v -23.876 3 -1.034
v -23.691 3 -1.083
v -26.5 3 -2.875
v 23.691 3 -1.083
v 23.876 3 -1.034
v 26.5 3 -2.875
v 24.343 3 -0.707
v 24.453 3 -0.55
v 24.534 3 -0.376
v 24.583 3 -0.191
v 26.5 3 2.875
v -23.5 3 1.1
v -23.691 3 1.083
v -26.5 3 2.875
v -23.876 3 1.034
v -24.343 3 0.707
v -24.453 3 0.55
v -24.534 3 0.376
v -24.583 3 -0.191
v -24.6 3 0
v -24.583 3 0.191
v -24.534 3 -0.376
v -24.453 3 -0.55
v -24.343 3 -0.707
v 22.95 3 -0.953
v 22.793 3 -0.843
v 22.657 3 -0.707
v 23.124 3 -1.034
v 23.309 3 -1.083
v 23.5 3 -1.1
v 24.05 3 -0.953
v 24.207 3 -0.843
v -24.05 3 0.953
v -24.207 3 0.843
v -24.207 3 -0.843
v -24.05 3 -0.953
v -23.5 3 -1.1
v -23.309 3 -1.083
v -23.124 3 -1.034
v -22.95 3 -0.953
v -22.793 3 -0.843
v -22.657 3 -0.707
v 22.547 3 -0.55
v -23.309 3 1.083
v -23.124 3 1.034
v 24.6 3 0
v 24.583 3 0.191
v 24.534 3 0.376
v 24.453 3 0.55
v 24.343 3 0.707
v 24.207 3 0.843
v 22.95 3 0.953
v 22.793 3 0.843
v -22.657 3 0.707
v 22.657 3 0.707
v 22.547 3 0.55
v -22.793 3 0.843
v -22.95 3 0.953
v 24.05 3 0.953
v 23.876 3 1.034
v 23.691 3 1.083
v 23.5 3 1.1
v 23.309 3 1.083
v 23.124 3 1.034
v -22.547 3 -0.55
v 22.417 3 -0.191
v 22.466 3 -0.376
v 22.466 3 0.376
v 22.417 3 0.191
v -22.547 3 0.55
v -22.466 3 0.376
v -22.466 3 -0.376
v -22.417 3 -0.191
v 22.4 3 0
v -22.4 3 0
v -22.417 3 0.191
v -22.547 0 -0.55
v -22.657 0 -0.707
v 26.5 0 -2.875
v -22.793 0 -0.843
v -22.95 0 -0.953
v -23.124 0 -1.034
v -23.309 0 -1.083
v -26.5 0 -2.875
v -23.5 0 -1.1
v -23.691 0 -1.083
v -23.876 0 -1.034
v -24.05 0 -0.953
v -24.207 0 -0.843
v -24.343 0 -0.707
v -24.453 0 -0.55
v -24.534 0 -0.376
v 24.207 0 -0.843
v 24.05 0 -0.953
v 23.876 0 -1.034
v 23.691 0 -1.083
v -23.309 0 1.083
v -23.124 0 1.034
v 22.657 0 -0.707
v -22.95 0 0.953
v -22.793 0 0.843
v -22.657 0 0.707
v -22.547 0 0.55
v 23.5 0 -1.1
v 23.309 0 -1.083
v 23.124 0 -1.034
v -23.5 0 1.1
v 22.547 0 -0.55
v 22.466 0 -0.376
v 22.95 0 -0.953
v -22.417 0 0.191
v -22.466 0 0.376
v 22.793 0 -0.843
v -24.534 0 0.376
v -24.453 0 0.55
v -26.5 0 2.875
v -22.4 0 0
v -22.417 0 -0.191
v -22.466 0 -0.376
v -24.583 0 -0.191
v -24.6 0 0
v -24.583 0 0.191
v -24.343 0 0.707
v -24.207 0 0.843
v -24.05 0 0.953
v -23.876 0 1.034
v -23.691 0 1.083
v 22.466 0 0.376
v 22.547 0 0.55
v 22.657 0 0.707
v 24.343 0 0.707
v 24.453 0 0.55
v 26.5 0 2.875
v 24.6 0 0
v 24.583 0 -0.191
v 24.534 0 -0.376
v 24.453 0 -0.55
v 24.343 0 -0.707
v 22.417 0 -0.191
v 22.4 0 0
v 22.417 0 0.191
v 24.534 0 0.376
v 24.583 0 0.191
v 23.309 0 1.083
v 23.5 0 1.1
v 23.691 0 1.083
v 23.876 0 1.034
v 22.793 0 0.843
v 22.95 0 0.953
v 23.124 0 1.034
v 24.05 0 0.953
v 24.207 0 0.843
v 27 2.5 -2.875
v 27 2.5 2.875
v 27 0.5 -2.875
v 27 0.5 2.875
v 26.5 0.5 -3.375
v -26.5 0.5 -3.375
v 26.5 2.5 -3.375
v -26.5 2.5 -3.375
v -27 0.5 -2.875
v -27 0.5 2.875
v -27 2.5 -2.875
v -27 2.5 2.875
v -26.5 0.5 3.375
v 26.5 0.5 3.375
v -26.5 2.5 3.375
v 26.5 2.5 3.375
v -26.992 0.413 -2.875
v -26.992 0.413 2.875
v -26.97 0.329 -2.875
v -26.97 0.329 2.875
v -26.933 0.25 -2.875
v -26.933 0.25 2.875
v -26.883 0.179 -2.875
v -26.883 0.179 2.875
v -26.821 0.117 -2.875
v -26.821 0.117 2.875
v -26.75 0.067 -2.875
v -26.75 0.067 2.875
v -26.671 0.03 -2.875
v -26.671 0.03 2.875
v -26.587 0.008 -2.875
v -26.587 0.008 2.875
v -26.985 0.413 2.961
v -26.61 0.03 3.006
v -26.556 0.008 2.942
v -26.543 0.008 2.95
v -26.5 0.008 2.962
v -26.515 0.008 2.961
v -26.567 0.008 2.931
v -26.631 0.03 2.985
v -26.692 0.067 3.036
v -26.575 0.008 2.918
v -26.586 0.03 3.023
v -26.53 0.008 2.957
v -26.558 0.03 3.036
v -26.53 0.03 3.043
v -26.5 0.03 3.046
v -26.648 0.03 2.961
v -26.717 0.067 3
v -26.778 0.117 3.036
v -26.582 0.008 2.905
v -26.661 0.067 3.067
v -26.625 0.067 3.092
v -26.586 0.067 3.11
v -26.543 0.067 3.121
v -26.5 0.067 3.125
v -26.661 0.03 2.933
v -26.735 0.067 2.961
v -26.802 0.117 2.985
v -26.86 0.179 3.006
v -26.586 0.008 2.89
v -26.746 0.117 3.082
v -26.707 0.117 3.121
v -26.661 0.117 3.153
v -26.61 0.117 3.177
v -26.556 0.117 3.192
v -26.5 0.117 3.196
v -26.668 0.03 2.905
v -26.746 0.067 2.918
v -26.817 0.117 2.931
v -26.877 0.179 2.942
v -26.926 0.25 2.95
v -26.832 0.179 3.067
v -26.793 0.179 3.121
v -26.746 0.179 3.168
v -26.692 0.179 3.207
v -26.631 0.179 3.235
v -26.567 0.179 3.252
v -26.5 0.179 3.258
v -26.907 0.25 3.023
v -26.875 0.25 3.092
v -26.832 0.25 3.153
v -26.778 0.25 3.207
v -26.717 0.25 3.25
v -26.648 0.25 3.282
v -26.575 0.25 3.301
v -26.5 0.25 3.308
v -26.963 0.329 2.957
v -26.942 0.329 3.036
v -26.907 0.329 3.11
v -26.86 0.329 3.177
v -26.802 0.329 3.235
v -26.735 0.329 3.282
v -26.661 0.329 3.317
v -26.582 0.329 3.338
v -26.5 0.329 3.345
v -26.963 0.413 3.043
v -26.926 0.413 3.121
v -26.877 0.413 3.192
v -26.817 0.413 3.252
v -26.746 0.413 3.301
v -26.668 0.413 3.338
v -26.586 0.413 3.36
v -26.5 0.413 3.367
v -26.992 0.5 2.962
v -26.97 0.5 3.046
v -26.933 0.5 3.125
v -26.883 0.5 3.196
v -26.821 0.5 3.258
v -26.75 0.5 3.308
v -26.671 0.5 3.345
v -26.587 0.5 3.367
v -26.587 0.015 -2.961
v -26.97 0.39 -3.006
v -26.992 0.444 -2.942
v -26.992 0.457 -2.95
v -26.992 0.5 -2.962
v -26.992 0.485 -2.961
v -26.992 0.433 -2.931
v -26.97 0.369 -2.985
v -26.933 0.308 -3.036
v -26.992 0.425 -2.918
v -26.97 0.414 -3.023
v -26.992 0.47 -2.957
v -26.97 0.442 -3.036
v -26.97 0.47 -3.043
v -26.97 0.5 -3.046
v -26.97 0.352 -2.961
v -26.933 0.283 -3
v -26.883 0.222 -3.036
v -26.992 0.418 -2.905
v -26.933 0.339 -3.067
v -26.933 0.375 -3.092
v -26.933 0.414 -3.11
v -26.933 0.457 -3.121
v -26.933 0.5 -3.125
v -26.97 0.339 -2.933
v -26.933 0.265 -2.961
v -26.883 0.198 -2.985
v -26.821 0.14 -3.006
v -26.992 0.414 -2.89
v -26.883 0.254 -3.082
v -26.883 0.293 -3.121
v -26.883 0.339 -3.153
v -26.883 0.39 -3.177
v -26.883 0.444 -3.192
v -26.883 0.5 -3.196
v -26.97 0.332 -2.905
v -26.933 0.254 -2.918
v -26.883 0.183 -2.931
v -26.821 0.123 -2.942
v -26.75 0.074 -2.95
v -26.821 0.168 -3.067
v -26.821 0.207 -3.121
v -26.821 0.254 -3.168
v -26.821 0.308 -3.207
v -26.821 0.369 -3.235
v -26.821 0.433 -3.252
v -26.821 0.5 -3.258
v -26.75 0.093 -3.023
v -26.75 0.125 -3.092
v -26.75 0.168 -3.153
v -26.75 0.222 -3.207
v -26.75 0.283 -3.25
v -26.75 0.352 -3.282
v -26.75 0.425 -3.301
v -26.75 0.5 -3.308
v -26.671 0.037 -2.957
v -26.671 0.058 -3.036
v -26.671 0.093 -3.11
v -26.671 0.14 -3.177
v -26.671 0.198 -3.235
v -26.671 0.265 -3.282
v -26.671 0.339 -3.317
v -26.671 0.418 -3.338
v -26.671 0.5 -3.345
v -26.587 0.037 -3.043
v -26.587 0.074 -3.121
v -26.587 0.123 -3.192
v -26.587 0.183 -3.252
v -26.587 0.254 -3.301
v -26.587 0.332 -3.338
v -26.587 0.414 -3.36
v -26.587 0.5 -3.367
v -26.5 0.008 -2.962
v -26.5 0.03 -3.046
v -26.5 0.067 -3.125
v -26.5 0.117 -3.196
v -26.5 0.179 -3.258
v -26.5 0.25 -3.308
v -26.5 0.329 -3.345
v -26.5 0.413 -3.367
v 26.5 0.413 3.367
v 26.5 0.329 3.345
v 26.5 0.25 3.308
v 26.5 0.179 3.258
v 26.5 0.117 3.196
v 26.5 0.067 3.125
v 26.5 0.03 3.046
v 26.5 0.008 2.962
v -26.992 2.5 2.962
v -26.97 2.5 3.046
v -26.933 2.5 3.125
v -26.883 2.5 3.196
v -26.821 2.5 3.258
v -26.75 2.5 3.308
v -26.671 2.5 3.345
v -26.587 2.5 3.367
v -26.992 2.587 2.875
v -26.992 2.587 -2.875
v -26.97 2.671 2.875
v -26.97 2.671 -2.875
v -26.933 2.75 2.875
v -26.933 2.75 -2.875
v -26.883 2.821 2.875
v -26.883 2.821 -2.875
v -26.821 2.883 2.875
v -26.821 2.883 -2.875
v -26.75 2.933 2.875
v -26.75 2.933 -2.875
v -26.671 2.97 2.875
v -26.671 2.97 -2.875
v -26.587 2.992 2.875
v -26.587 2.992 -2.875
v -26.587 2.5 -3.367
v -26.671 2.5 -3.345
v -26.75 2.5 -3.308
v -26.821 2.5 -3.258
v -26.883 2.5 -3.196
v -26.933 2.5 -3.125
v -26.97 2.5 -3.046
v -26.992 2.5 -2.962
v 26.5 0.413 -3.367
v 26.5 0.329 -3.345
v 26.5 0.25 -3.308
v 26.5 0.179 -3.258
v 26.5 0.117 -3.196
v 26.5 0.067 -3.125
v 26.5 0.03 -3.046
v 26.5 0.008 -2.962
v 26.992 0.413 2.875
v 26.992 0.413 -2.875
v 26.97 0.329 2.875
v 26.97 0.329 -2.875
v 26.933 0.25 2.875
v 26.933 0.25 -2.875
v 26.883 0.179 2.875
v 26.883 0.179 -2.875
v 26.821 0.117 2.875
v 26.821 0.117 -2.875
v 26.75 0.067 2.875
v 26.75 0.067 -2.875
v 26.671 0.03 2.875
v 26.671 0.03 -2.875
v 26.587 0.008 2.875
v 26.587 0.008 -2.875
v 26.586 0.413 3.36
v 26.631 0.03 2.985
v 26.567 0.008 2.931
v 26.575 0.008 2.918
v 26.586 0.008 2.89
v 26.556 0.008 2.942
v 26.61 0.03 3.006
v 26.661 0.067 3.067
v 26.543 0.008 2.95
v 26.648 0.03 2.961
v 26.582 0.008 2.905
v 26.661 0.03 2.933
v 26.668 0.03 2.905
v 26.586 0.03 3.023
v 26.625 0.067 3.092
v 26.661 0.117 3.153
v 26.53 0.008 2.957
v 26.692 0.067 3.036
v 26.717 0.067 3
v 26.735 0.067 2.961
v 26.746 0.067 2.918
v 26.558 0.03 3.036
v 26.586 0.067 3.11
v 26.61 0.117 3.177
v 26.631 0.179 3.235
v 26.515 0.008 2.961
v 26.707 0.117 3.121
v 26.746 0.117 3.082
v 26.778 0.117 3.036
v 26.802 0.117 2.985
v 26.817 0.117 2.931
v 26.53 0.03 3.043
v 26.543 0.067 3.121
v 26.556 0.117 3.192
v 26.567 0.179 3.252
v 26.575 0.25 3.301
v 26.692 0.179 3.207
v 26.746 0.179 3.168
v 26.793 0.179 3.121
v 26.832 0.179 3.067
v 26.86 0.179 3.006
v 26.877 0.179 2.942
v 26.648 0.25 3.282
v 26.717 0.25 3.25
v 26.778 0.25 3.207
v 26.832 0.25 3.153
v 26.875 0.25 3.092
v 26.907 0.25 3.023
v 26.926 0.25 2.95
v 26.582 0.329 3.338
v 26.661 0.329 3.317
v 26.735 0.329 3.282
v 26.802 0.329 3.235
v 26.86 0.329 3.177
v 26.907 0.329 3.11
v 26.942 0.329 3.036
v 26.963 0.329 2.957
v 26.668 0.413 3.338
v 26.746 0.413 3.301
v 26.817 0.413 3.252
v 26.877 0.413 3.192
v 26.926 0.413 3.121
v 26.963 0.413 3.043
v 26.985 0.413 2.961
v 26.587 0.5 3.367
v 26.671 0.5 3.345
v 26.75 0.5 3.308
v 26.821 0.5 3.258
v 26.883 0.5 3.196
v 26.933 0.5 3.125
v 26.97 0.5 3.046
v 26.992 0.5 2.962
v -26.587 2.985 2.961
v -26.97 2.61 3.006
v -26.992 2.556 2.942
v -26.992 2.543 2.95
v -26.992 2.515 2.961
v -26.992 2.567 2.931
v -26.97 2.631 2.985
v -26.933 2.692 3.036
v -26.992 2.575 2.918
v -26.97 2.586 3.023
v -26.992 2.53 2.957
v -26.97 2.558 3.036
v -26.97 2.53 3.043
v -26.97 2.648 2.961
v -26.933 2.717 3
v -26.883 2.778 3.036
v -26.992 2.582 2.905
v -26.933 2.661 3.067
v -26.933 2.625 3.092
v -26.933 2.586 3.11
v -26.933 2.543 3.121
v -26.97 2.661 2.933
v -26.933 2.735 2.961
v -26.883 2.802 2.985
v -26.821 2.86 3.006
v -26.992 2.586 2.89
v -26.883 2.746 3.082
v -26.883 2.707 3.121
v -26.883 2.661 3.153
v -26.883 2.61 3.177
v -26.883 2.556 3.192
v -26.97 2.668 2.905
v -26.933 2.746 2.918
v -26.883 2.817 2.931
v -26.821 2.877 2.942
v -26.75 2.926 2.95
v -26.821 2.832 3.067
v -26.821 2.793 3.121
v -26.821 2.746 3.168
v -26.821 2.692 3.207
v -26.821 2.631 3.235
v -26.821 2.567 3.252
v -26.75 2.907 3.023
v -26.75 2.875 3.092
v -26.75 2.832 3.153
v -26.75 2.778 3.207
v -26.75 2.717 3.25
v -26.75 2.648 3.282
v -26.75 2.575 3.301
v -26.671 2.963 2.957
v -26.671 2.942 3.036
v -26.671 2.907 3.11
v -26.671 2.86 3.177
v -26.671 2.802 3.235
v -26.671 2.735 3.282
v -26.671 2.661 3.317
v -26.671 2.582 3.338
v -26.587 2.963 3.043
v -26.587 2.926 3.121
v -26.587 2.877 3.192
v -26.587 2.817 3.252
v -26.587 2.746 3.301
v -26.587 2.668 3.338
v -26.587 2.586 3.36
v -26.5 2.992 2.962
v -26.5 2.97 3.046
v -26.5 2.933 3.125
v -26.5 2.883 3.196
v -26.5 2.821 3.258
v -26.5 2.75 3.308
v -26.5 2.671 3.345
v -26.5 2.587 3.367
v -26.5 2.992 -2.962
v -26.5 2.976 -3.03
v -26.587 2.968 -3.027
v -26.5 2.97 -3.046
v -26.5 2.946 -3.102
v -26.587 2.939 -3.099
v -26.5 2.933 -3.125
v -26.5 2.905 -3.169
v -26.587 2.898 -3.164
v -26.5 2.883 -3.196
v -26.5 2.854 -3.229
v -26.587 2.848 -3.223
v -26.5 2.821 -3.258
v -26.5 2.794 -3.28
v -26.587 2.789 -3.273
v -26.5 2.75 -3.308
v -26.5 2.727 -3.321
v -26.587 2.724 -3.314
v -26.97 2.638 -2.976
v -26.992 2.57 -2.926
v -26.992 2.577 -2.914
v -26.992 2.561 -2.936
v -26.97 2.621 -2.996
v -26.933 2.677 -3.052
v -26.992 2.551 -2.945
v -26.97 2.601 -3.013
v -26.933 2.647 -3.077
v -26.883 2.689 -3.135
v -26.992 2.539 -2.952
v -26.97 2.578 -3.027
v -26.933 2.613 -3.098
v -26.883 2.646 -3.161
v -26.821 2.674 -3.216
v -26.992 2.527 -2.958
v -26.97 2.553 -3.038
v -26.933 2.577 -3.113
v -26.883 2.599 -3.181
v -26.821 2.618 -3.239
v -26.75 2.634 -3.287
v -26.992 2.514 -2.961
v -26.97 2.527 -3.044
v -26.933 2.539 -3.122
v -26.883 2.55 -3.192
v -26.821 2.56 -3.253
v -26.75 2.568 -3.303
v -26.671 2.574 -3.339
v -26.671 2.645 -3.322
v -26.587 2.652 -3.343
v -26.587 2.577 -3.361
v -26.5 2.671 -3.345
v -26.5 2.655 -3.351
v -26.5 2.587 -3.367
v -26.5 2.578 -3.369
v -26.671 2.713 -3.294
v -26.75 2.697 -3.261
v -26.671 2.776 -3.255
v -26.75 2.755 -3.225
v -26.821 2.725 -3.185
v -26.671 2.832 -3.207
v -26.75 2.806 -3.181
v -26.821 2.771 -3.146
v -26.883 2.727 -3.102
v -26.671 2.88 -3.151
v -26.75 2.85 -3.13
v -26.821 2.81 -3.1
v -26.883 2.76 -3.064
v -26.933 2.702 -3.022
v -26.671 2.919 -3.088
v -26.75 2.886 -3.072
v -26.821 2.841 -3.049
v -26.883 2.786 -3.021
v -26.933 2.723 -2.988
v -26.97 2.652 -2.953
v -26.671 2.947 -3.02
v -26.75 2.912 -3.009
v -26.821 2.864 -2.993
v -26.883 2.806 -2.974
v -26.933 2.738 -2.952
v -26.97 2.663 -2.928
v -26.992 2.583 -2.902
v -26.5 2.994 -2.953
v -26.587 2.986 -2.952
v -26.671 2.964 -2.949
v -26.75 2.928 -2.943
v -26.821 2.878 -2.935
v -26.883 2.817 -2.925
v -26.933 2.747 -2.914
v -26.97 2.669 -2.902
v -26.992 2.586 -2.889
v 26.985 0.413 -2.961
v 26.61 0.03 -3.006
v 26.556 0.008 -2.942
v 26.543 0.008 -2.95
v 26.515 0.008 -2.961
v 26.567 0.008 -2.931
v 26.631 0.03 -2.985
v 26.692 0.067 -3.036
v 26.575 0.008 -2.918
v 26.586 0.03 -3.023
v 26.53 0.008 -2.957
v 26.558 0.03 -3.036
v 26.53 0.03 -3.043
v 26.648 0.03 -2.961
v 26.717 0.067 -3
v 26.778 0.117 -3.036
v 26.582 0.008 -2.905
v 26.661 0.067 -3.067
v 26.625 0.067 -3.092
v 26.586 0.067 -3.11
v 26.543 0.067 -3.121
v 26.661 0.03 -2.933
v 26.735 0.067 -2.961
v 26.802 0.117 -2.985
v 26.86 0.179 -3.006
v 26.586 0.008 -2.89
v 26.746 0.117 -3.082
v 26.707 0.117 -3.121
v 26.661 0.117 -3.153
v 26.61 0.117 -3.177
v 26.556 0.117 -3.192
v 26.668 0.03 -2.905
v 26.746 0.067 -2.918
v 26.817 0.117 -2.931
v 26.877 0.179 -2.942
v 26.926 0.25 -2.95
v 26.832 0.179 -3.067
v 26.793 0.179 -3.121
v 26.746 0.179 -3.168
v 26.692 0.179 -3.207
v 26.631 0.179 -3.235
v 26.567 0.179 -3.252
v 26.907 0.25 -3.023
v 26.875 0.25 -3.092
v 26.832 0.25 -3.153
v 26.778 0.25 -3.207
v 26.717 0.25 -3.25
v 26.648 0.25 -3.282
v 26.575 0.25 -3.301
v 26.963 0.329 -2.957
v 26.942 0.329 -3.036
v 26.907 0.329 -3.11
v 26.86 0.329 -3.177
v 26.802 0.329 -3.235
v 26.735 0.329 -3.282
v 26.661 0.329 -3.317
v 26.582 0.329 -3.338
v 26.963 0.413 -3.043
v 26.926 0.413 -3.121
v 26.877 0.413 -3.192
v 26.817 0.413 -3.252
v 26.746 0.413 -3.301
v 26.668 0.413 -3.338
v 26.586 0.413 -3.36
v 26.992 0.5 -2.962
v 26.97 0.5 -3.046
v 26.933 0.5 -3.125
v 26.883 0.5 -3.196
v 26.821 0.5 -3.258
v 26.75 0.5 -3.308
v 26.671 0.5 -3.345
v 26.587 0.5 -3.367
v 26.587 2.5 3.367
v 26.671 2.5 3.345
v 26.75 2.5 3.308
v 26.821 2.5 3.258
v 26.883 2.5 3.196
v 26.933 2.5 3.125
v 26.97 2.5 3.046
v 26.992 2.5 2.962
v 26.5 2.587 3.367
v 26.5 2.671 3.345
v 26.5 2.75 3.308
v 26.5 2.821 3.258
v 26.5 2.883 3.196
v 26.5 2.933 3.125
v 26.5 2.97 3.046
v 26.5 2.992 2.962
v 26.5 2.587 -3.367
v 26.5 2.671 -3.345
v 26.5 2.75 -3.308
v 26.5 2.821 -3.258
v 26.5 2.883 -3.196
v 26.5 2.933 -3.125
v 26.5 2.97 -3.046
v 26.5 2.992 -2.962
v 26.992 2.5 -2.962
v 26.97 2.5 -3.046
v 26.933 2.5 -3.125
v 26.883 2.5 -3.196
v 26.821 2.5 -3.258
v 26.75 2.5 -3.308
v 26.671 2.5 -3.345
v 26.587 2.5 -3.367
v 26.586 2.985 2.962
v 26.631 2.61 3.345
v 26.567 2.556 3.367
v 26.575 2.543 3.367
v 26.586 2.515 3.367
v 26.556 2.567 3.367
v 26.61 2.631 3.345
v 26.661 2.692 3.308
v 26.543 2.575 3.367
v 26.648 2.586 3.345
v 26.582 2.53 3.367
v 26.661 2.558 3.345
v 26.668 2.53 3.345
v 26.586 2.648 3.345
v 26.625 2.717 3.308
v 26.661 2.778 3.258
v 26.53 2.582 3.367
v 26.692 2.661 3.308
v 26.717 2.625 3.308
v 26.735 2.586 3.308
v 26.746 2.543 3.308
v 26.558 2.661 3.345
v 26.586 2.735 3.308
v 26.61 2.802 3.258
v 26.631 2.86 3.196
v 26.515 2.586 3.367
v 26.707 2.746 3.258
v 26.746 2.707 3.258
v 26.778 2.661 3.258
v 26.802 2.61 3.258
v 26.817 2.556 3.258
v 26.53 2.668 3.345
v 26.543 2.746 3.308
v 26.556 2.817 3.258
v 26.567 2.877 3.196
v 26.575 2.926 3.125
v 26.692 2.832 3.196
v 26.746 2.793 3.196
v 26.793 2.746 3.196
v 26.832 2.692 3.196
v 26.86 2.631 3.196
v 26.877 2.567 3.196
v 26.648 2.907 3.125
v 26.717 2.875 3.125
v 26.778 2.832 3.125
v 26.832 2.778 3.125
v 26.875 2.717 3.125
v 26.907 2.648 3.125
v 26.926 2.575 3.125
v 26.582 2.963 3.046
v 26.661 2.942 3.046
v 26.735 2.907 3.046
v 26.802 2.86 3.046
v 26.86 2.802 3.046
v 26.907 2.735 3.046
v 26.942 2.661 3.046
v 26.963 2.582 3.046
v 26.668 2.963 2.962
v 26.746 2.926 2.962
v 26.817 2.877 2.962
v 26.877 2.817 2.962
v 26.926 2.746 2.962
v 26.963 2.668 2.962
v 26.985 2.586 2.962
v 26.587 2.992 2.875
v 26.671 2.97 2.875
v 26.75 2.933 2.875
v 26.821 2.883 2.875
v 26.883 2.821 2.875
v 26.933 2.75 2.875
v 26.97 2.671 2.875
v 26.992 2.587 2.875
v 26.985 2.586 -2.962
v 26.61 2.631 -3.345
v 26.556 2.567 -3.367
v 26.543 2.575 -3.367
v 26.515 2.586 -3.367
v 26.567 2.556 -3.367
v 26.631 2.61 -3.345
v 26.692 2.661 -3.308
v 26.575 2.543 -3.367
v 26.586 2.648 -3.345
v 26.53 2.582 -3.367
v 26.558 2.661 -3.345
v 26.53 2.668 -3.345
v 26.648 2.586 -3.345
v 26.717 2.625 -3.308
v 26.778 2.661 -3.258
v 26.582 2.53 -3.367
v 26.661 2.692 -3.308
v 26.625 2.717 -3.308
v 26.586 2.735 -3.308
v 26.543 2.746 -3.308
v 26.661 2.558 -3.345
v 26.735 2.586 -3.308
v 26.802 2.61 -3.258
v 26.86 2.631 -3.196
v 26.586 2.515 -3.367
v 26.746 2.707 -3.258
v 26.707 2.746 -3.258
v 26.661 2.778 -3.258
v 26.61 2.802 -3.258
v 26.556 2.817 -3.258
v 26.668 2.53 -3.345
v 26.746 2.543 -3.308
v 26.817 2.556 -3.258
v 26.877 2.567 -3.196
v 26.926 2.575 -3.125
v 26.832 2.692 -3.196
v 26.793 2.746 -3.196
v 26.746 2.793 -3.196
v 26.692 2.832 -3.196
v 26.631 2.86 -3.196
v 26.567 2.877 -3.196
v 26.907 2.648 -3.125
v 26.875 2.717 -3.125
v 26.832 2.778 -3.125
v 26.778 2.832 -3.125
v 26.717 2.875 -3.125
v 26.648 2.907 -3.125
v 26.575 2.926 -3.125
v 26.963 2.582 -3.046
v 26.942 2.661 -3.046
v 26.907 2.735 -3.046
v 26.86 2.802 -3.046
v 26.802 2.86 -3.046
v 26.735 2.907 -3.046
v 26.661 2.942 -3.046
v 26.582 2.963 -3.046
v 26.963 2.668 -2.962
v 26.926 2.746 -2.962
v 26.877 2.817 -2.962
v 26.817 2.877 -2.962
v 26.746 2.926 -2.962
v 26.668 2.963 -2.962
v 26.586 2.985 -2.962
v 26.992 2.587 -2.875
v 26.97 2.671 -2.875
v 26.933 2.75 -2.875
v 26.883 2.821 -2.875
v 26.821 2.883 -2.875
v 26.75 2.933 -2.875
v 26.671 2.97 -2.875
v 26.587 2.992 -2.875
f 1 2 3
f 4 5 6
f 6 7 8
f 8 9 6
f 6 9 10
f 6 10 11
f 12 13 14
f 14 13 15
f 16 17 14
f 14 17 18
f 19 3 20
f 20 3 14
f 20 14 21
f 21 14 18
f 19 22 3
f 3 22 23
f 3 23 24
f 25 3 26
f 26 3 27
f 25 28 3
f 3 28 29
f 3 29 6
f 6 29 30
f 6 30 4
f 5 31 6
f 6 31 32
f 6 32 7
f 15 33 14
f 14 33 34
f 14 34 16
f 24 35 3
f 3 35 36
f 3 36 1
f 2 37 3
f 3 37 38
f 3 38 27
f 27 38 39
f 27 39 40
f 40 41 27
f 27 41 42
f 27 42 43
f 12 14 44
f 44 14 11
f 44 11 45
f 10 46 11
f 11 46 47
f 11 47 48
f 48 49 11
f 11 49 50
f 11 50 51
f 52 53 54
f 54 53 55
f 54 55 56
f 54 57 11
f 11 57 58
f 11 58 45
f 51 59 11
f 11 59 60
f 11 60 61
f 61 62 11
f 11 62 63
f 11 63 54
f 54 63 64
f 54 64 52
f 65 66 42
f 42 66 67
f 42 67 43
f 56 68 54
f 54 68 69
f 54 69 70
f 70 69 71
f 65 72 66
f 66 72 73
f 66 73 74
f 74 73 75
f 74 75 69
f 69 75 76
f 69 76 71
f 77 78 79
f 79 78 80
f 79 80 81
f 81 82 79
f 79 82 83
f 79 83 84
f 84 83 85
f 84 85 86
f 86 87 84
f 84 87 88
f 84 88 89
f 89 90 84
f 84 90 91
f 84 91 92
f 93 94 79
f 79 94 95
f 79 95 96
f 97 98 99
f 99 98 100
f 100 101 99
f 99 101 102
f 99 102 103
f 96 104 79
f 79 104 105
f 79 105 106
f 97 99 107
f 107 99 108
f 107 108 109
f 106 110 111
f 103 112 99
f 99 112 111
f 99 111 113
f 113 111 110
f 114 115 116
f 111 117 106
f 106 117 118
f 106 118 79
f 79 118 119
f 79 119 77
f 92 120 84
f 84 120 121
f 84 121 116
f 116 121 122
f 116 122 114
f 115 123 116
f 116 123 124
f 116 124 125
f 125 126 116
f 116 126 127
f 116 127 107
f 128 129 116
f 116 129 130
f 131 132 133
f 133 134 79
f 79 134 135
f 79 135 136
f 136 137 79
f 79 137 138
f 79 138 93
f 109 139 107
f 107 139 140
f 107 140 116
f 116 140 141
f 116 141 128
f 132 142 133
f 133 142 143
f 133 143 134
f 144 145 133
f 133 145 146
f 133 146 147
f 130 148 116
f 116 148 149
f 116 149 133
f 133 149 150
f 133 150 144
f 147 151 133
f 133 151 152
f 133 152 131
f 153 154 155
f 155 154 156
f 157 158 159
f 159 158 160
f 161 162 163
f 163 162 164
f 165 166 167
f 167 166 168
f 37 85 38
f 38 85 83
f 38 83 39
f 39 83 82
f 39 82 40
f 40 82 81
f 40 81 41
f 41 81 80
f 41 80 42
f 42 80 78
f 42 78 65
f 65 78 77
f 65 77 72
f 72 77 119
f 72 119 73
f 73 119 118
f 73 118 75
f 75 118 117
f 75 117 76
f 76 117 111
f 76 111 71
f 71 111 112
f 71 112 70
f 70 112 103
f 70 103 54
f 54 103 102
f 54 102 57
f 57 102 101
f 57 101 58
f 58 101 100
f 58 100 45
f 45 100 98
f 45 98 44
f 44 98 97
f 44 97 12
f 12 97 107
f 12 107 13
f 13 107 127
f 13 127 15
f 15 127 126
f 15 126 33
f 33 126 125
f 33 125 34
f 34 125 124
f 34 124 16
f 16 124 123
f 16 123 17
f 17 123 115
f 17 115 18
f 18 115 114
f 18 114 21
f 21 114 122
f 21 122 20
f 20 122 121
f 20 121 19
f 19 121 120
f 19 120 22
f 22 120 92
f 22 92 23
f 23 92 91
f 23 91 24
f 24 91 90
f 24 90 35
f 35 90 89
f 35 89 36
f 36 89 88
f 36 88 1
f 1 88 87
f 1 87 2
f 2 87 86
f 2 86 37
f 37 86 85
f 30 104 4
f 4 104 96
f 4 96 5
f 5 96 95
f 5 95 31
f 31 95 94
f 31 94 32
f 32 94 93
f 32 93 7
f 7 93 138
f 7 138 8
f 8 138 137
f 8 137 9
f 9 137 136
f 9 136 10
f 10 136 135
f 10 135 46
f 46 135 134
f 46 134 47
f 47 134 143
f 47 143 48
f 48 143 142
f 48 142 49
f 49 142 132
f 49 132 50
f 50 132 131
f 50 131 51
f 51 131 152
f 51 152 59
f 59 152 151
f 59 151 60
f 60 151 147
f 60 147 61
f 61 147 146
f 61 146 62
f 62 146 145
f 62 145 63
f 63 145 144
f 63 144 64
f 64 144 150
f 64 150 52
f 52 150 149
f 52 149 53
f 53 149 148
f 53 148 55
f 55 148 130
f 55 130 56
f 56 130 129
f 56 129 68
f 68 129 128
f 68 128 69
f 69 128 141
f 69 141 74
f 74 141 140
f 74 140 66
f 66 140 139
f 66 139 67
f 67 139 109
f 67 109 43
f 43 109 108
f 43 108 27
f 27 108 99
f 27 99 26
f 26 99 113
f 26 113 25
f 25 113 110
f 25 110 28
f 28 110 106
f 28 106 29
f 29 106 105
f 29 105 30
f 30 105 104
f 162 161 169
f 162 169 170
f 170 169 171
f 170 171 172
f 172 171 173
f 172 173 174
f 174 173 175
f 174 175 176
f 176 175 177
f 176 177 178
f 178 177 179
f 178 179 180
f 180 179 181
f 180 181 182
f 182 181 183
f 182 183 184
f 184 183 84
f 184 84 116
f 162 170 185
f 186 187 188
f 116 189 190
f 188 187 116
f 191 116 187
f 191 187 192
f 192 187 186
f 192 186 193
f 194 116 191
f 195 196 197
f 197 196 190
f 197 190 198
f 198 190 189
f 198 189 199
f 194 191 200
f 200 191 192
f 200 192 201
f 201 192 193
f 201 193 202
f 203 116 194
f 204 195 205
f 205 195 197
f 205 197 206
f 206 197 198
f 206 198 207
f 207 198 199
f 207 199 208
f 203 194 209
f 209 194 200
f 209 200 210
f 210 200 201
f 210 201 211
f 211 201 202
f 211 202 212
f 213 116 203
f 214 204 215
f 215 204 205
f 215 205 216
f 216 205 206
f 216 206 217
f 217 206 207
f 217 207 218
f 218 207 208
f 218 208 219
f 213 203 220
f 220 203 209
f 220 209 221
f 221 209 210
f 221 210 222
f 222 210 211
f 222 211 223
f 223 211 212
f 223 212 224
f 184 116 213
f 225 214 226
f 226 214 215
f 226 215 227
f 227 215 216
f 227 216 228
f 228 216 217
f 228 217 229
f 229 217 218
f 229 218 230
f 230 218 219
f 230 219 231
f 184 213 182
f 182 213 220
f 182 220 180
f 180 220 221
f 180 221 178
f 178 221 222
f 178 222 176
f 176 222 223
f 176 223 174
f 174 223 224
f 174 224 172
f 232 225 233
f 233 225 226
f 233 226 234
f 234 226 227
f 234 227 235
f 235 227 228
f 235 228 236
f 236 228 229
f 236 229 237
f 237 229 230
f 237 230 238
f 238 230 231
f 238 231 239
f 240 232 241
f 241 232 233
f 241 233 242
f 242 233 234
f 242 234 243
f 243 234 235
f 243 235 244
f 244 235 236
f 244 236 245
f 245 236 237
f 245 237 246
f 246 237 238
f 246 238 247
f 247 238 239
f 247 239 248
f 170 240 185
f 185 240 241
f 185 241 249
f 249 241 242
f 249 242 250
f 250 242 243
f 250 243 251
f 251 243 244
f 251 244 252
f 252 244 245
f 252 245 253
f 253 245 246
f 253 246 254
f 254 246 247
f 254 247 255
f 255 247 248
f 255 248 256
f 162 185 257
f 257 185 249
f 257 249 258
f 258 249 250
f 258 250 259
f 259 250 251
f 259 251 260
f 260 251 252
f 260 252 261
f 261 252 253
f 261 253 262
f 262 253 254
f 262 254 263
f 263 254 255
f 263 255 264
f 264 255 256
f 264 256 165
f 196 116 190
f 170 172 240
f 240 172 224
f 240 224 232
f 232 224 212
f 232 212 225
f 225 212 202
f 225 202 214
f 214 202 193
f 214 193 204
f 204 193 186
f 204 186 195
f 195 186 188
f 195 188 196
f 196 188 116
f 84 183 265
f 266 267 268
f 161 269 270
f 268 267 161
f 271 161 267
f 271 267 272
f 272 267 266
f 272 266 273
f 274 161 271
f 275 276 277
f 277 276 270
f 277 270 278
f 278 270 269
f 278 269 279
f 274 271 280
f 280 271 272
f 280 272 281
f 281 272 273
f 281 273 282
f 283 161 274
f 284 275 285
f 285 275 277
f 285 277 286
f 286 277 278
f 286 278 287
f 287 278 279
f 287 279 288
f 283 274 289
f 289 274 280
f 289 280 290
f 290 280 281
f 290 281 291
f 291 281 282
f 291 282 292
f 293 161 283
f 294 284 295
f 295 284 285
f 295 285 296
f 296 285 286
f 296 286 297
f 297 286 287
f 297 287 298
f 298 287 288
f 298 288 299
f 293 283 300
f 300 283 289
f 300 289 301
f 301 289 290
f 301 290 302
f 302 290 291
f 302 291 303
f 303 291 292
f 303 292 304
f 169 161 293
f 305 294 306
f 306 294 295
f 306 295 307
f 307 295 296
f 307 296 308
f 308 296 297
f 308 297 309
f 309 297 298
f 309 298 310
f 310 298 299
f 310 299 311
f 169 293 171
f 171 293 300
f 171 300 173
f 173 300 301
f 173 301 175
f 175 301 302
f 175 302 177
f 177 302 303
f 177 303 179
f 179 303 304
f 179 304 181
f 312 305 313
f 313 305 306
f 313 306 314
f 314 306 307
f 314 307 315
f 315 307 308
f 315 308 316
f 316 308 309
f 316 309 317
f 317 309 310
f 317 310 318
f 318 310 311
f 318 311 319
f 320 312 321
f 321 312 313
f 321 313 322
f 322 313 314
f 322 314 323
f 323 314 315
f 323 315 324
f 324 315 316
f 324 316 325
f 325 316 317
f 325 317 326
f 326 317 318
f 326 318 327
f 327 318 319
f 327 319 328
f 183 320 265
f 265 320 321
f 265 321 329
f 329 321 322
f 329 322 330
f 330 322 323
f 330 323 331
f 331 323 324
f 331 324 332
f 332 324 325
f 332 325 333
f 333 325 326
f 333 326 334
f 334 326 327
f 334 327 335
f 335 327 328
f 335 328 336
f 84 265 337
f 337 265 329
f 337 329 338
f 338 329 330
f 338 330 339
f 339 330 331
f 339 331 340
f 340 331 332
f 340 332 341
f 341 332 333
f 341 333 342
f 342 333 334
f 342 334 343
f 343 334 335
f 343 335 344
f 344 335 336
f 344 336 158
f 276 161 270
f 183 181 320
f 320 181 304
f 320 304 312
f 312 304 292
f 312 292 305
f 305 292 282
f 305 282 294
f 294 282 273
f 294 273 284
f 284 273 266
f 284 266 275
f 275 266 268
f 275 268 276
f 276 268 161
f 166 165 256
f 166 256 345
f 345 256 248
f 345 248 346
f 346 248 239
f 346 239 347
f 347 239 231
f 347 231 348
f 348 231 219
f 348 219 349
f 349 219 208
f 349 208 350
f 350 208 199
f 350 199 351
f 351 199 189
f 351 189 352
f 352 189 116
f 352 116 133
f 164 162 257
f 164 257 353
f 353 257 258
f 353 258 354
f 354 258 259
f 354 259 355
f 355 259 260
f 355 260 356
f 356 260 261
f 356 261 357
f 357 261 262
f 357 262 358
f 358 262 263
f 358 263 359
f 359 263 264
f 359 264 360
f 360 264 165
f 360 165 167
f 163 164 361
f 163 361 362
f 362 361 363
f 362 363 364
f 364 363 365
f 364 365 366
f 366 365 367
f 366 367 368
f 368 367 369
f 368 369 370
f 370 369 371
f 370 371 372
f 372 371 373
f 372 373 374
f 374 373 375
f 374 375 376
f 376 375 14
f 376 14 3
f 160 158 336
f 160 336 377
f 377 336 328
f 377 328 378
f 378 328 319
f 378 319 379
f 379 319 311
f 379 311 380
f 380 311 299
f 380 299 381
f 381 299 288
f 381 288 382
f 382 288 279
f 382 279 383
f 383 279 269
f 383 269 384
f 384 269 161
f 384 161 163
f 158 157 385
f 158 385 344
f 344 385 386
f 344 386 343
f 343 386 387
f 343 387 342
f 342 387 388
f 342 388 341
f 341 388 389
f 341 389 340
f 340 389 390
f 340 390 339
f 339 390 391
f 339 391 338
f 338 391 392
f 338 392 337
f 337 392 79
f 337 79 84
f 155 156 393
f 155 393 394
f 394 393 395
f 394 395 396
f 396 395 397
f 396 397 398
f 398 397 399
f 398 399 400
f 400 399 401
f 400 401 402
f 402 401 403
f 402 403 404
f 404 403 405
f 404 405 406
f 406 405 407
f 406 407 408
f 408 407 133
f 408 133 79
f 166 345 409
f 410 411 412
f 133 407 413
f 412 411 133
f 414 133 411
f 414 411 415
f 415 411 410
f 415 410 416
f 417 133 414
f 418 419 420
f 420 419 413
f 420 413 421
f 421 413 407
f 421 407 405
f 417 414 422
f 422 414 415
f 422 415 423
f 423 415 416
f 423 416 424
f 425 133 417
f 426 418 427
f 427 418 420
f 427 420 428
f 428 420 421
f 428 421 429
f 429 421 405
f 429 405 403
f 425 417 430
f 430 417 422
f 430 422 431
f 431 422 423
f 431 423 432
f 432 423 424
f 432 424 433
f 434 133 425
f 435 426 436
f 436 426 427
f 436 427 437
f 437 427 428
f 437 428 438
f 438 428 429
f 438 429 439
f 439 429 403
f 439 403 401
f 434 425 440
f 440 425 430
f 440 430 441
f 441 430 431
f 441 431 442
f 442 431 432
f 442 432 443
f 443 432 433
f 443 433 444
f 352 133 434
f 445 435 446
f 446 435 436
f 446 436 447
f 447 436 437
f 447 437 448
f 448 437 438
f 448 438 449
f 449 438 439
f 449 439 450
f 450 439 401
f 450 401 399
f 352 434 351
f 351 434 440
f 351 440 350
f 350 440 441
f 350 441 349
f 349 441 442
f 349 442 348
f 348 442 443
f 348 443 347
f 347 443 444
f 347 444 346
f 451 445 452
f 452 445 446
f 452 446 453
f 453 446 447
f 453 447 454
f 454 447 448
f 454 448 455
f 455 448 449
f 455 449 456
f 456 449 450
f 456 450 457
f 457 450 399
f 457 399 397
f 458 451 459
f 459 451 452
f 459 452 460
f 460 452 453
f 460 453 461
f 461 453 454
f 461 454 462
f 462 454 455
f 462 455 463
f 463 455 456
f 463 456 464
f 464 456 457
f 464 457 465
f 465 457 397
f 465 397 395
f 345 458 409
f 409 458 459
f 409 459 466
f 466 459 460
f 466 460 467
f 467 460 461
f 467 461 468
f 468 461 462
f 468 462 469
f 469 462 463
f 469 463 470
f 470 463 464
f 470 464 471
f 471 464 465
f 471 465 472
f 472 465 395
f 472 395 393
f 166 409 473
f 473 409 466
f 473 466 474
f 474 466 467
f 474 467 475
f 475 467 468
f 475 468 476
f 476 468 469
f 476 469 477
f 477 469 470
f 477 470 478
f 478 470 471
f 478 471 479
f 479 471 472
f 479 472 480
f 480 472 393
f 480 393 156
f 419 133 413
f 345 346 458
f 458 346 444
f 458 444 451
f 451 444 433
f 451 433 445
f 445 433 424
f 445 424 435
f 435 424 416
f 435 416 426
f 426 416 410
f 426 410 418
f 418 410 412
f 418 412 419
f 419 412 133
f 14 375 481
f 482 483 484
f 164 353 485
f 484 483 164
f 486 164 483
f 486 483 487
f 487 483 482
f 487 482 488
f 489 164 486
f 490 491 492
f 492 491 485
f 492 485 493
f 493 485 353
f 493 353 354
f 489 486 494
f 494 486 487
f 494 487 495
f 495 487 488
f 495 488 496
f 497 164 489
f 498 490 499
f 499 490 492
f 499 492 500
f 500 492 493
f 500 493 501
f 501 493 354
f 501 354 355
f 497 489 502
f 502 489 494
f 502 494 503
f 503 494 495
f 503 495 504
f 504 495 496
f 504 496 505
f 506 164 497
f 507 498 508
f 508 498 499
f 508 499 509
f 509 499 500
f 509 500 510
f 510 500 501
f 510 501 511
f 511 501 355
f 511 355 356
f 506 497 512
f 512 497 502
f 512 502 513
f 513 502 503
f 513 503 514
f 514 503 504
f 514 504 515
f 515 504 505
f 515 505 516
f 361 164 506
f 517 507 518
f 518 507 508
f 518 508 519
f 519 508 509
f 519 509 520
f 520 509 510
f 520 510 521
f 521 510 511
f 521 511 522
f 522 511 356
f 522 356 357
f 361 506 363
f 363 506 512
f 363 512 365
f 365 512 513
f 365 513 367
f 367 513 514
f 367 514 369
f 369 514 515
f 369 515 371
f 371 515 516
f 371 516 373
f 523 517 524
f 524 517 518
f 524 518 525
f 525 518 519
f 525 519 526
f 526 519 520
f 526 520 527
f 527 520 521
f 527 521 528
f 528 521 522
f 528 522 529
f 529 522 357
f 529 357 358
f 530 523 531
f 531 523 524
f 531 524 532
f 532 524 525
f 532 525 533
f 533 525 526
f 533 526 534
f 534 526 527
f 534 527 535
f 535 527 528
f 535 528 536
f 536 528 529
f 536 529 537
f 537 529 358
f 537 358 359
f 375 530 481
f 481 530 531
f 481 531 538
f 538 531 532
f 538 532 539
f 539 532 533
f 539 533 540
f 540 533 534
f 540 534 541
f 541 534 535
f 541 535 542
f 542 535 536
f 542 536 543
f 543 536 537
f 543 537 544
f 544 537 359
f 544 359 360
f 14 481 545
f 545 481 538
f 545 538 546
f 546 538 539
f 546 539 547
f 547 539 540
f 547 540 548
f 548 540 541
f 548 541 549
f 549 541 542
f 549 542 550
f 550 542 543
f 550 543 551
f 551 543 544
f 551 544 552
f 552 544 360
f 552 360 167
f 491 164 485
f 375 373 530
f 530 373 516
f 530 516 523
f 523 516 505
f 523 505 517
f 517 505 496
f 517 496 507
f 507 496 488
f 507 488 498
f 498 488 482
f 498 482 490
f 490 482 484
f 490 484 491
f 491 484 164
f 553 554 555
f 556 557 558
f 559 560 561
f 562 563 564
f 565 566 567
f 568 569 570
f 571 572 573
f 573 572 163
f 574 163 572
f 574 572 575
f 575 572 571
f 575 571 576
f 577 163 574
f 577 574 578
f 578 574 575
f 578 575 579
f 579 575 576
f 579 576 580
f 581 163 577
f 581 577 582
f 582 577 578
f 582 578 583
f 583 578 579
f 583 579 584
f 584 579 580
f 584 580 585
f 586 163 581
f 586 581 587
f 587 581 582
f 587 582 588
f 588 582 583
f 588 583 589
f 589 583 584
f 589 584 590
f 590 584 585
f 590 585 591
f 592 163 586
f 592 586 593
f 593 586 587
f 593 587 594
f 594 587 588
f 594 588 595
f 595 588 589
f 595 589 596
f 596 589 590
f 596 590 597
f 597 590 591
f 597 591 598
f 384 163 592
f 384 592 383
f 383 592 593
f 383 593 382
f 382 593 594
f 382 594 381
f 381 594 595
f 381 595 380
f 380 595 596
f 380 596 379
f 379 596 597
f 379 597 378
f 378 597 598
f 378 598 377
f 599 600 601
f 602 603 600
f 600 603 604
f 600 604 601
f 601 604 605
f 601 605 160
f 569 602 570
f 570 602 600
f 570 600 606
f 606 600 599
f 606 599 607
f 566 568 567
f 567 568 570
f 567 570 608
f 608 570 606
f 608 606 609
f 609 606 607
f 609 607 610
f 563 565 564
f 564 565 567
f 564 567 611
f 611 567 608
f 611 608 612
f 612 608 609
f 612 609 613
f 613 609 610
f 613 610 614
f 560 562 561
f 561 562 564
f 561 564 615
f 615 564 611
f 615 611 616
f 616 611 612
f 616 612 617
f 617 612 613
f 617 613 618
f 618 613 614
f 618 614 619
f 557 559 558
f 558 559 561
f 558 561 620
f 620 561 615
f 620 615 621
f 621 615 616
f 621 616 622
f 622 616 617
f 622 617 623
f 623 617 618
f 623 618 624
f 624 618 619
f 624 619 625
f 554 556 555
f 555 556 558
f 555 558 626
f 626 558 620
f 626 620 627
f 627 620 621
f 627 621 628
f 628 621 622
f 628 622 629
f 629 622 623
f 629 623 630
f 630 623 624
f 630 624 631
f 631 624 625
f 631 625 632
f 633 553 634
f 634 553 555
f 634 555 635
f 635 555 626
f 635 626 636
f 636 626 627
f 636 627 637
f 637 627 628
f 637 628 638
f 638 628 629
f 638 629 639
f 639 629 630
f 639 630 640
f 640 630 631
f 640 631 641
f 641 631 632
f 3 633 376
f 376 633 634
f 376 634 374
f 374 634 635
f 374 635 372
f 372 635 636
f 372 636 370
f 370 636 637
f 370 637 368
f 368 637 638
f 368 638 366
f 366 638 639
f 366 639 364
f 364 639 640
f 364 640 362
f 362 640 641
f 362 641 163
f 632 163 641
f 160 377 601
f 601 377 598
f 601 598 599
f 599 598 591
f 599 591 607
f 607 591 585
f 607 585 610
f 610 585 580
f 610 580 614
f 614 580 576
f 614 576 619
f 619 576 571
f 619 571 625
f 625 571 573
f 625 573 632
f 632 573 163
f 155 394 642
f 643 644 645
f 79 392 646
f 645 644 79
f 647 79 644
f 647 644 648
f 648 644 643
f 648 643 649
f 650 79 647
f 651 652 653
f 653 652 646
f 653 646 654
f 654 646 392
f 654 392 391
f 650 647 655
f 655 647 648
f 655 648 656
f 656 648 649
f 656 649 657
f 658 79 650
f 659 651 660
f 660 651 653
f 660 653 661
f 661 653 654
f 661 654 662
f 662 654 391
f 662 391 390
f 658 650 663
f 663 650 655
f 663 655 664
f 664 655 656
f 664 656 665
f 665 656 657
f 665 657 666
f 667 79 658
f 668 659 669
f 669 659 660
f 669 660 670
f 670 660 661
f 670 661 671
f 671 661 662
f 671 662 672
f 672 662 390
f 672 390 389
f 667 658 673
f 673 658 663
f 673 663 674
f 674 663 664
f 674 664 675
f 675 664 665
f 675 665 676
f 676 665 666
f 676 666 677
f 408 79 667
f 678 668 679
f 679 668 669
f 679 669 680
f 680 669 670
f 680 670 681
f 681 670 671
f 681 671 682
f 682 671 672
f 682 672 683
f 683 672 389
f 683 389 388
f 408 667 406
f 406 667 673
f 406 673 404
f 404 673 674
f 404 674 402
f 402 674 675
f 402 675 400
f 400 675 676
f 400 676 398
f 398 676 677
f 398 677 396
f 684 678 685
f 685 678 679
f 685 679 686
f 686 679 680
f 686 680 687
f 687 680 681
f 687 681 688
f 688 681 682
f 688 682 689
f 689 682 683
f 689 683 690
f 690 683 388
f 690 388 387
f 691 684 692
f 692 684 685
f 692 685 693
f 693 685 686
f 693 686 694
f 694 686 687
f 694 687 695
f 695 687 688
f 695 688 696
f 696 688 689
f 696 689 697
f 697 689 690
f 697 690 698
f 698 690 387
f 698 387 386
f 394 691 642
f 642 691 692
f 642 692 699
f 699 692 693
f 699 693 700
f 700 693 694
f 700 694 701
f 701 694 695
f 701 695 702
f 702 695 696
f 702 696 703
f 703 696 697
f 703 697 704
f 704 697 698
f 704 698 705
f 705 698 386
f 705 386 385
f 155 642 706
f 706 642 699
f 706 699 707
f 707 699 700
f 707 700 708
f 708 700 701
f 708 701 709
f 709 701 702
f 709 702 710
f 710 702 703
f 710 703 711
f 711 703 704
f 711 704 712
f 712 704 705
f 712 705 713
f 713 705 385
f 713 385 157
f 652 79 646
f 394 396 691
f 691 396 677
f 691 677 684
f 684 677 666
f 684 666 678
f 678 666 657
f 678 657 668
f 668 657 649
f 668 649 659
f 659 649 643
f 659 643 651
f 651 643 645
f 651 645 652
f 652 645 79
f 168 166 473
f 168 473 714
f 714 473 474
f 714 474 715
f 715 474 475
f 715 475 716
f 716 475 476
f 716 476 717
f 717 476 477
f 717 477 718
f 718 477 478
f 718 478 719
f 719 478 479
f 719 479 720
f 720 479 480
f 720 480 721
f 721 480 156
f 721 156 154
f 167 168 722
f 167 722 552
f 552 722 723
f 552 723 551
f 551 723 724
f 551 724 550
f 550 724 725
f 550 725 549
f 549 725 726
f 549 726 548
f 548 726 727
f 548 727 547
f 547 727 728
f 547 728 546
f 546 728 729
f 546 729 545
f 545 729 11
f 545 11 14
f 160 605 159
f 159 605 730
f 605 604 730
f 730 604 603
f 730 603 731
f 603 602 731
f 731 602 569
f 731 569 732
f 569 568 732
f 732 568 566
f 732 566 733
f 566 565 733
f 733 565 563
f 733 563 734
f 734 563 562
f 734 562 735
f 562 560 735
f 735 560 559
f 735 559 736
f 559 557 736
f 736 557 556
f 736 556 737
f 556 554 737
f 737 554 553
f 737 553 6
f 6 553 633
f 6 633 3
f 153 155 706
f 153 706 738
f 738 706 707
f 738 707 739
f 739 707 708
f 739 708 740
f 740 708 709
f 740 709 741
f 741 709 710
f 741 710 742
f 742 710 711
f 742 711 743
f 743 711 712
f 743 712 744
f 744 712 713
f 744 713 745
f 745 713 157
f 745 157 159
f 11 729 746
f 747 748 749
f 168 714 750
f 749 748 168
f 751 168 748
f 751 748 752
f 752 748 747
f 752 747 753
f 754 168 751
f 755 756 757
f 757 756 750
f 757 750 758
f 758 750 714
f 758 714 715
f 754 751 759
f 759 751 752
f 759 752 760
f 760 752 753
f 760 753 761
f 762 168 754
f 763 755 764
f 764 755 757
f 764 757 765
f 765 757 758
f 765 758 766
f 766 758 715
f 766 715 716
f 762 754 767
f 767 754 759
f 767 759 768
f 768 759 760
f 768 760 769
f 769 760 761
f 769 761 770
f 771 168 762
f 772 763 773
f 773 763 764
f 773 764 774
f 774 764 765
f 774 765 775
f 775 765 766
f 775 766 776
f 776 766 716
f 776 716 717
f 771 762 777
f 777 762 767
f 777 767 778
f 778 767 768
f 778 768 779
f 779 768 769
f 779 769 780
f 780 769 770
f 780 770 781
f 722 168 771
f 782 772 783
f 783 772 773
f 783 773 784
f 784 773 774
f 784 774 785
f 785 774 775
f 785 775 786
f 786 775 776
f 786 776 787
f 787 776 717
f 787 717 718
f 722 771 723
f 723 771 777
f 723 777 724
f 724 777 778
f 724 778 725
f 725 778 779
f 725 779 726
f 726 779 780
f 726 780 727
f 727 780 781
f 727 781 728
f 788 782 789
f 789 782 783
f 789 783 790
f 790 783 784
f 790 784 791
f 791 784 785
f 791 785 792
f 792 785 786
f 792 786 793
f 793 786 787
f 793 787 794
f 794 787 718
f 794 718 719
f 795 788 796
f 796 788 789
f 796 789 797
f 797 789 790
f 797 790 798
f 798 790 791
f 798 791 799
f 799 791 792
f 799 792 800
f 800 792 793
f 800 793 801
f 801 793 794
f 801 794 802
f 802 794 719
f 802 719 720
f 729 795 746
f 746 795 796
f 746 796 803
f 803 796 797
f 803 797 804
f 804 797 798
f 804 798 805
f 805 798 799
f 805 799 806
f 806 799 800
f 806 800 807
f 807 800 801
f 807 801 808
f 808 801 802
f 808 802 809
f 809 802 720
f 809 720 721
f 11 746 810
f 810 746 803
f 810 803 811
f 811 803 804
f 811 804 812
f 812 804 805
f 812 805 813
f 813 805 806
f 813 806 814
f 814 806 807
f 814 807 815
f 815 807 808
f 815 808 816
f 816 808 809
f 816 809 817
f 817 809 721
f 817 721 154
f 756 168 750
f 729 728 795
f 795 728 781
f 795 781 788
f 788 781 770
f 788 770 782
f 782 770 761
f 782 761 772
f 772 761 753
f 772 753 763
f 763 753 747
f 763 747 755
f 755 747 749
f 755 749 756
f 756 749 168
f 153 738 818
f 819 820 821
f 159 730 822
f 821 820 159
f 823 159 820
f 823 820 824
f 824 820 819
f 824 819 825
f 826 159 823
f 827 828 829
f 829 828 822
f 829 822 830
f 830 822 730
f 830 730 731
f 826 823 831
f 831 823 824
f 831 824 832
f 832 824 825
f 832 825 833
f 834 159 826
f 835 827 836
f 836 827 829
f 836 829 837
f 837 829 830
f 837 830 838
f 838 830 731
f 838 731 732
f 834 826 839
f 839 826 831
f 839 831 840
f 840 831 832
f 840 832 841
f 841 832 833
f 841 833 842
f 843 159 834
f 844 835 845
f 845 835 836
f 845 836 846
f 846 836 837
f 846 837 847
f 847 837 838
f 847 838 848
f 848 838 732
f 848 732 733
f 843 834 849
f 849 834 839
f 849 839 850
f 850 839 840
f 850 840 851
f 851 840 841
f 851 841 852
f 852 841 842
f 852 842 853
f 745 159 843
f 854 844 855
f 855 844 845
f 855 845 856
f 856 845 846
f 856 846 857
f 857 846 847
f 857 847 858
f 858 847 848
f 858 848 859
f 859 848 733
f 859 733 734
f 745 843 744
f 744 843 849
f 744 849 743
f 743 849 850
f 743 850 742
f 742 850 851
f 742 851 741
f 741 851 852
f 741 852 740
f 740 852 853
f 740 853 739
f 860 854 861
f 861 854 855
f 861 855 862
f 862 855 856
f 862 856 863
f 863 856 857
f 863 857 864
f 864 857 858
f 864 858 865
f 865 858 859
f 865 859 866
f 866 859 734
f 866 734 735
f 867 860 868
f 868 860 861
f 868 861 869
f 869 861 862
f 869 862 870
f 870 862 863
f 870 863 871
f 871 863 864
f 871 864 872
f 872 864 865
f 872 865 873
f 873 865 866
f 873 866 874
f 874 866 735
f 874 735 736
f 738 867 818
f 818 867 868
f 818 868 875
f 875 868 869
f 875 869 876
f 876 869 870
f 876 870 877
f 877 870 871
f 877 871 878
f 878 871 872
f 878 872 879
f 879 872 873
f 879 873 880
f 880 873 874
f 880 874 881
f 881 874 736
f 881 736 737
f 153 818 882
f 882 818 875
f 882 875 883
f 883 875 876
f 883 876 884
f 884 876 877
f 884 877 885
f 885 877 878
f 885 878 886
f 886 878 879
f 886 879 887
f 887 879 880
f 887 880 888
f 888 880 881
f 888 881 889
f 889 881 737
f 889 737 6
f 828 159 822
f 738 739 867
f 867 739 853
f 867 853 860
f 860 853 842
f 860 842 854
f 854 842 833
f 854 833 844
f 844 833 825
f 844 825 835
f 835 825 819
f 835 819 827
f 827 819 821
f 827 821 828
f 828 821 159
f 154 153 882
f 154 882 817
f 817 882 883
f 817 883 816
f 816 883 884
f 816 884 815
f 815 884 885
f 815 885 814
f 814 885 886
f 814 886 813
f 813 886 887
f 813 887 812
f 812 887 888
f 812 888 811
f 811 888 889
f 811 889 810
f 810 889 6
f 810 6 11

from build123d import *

# Parameters (mm, degrees)
SKETCH1_W           = 54
SKETCH1_H           = 6.75
SKETCH1_R           = 1.1
BOSS_EXTRUDE1_DEPTH = 3
FILLET1_R           = 0.5


with BuildPart() as part:
    # Sketch1 → Boss-Extrude1 (new body)
    with BuildSketch(Plane(origin=(0, 0, 0), x_dir=(1, 0, 0), z_dir=(0, 1, 0))):
        Rectangle(SKETCH1_W, SKETCH1_H)
        with Locations(Location((-23.5, 0, 0), (0, 0, 270))):
            Circle(SKETCH1_R, mode=Mode.SUBTRACT)
        with Locations(Location((23.5, 0, 0), (0, 0, 270))):
            Circle(SKETCH1_R, mode=Mode.SUBTRACT)
    extrude(amount=BOSS_EXTRUDE1_DEPTH)

    # Fillet1
    fillet1_edges = [part.edges().sort_by_distance(p)[0] for p in [
        (-27, 3, 0),
        (0, 3, 3.375),
        (27, 3, 0),
        (0, 0, 3.375),
        (-27, 0, 0),
        (0, 0, -3.375),
        (27, 0, 0),
        (27, 1.5, 3.375),
        (-27, 1.5, 3.375),
        (-27, 1.5, -3.375),
        (27, 1.5, -3.375),
        (0, 3, -3.375),
    ]]
    fillet(fillet1_edges, radius=FILLET1_R)


solid = part.part
